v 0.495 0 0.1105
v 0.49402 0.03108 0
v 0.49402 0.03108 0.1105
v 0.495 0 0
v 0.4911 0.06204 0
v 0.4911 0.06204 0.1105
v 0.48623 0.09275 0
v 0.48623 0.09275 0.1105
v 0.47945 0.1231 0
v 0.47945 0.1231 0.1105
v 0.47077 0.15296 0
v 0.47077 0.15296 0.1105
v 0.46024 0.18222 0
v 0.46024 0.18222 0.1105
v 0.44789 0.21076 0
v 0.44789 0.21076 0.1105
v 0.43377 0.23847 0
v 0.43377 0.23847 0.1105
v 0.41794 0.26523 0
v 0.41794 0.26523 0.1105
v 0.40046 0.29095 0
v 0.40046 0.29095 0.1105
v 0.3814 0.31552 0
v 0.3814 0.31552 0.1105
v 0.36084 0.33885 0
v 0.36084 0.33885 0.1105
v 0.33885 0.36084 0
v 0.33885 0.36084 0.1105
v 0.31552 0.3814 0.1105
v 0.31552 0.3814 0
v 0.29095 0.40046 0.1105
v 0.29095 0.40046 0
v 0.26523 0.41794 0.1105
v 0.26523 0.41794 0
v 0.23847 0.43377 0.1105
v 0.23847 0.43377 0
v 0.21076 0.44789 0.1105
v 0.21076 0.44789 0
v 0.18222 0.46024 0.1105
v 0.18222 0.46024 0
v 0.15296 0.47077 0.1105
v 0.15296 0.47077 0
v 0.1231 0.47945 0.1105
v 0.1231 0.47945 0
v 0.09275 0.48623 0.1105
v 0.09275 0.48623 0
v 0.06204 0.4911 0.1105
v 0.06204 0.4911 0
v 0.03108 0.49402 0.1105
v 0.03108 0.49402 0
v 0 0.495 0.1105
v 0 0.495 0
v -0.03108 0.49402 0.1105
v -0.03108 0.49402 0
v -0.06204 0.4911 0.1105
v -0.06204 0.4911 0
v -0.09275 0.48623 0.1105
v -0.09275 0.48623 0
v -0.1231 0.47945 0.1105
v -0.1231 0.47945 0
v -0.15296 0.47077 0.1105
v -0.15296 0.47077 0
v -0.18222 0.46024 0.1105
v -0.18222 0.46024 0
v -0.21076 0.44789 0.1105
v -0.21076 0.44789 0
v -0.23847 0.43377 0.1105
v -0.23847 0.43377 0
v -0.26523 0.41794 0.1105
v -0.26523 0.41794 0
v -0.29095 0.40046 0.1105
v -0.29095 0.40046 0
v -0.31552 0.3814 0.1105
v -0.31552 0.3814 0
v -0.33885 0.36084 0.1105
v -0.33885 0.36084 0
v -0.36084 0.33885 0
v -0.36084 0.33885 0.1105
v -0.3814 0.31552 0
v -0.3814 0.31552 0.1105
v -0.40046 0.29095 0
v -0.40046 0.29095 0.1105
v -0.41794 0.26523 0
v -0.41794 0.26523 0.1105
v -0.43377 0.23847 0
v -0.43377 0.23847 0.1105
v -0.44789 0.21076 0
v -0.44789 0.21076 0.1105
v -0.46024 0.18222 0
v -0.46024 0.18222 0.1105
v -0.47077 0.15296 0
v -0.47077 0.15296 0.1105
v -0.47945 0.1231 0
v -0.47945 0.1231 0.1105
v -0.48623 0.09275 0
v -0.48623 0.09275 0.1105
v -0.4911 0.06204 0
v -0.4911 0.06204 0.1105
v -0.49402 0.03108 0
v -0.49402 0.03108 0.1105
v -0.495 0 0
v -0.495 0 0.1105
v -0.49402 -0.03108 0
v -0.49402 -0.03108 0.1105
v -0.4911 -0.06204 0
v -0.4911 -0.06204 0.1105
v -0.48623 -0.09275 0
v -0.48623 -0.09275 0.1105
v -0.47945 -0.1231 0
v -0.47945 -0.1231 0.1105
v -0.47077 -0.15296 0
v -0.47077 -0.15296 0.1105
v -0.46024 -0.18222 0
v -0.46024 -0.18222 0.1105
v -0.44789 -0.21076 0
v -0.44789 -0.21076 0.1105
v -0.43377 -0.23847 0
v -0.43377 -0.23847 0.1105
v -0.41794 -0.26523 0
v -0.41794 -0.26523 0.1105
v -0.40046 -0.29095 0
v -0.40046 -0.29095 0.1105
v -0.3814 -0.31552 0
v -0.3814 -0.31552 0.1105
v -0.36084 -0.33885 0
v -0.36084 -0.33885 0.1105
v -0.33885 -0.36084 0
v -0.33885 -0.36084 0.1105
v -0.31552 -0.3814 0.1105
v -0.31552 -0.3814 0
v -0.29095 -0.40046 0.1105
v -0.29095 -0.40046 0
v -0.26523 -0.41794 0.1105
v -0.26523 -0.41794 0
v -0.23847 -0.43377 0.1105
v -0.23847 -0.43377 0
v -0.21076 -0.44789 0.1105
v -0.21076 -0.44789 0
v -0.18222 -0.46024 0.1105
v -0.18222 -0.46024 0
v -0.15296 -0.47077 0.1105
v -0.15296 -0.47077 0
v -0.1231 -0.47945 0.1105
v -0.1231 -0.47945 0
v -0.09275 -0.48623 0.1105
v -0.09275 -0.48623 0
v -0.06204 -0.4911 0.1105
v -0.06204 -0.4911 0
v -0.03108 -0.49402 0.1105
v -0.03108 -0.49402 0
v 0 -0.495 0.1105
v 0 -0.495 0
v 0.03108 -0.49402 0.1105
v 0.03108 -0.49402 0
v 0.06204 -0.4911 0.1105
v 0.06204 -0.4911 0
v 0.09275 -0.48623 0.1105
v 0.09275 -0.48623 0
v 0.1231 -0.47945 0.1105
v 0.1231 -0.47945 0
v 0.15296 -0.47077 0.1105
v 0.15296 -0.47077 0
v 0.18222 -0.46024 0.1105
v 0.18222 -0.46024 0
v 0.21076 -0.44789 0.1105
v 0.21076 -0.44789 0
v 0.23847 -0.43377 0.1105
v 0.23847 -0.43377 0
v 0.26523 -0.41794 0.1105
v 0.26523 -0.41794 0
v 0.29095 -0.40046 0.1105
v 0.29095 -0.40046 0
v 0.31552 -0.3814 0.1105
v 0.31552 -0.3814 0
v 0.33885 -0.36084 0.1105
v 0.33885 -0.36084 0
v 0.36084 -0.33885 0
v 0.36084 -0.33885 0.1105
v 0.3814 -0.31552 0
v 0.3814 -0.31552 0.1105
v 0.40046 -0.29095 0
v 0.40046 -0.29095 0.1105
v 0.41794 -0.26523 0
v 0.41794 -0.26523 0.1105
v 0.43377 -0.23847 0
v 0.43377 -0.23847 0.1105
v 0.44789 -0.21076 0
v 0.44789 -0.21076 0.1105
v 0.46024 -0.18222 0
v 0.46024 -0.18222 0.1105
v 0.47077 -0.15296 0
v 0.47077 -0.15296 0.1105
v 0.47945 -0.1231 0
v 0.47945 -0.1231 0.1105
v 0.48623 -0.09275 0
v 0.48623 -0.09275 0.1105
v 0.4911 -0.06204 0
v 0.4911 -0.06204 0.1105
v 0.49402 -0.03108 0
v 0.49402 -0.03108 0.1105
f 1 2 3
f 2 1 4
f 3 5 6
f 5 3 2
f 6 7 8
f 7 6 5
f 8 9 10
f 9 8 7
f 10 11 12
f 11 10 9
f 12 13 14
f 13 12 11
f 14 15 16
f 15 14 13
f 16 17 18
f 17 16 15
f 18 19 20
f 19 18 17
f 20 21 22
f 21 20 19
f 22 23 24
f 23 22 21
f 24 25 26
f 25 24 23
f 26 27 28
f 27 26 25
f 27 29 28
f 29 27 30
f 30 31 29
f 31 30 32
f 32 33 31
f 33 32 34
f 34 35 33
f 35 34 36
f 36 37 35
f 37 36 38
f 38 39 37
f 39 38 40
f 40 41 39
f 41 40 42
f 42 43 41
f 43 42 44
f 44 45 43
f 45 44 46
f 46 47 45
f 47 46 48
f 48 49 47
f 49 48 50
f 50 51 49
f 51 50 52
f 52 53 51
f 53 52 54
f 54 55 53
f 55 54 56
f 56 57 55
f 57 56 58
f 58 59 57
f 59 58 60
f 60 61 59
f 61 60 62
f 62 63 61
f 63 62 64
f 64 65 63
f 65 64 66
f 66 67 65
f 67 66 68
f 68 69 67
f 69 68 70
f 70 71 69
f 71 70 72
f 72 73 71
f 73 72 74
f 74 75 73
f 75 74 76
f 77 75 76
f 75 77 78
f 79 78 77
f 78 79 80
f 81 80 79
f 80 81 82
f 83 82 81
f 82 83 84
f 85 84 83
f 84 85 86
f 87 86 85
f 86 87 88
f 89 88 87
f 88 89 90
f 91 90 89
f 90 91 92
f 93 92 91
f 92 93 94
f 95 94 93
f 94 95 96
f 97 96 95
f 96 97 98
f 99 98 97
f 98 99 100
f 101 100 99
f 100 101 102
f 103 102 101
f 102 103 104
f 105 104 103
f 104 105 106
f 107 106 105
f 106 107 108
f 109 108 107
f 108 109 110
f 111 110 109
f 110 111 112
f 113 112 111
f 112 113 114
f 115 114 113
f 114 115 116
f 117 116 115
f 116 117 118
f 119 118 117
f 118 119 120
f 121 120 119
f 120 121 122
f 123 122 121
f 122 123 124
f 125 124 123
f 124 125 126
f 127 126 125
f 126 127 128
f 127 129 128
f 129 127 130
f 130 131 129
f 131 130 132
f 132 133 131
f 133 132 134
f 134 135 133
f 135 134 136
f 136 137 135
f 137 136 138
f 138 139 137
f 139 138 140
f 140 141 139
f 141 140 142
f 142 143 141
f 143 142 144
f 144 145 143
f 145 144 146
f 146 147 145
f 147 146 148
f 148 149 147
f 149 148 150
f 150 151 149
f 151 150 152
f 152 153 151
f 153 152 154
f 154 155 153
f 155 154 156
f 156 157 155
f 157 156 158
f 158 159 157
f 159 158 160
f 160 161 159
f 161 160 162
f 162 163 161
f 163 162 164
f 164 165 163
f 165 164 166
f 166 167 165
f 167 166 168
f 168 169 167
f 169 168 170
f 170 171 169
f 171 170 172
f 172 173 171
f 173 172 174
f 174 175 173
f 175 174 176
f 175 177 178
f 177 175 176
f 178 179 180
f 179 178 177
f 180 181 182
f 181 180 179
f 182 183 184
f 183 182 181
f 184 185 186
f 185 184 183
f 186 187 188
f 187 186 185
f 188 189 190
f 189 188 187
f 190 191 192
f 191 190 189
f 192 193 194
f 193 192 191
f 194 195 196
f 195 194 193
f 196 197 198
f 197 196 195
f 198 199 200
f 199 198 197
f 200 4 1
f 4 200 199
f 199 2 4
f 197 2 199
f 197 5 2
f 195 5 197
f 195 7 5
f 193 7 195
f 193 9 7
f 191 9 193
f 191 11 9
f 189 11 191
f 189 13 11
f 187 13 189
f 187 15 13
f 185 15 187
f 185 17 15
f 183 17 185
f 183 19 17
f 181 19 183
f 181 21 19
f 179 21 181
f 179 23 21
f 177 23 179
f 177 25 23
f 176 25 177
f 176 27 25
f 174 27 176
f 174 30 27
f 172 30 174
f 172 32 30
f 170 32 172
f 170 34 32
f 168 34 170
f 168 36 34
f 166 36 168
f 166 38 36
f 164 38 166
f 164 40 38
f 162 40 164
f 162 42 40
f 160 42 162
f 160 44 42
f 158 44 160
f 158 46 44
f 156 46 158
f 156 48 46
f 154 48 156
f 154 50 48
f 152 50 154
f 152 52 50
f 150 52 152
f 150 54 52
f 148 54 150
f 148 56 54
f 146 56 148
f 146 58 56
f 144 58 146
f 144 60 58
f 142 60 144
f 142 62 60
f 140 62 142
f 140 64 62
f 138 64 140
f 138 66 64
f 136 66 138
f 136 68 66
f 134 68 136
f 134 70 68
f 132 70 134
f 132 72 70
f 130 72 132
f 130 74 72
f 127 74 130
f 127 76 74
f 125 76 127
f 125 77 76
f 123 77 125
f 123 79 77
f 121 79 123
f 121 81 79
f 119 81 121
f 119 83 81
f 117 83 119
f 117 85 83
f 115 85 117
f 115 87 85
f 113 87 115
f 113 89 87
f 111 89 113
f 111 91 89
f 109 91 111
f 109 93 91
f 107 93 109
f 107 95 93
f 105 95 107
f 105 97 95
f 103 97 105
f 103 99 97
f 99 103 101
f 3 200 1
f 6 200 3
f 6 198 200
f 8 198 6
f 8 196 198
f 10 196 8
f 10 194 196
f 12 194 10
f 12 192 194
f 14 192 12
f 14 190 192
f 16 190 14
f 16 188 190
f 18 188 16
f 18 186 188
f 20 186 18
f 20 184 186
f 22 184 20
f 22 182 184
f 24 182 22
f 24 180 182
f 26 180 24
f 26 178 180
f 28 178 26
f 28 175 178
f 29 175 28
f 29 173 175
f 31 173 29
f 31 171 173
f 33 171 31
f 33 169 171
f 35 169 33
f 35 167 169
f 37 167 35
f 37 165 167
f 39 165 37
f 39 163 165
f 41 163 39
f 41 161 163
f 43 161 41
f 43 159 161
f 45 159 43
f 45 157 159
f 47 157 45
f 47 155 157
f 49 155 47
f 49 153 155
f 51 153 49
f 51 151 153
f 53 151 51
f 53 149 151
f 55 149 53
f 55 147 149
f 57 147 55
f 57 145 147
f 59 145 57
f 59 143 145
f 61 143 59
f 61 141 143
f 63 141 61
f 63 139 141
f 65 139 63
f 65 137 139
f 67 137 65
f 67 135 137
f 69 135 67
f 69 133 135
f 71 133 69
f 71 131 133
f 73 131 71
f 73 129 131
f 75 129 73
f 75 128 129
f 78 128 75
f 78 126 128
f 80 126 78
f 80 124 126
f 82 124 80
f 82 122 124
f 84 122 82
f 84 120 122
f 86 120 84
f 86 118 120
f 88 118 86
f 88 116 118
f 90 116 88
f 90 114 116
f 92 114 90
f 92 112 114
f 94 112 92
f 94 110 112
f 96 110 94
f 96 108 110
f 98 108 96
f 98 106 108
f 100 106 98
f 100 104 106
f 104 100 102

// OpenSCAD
translate([0,0,.1105/2])
    cylinder(h=.1105, r=.495, $fn=100, center = true);
